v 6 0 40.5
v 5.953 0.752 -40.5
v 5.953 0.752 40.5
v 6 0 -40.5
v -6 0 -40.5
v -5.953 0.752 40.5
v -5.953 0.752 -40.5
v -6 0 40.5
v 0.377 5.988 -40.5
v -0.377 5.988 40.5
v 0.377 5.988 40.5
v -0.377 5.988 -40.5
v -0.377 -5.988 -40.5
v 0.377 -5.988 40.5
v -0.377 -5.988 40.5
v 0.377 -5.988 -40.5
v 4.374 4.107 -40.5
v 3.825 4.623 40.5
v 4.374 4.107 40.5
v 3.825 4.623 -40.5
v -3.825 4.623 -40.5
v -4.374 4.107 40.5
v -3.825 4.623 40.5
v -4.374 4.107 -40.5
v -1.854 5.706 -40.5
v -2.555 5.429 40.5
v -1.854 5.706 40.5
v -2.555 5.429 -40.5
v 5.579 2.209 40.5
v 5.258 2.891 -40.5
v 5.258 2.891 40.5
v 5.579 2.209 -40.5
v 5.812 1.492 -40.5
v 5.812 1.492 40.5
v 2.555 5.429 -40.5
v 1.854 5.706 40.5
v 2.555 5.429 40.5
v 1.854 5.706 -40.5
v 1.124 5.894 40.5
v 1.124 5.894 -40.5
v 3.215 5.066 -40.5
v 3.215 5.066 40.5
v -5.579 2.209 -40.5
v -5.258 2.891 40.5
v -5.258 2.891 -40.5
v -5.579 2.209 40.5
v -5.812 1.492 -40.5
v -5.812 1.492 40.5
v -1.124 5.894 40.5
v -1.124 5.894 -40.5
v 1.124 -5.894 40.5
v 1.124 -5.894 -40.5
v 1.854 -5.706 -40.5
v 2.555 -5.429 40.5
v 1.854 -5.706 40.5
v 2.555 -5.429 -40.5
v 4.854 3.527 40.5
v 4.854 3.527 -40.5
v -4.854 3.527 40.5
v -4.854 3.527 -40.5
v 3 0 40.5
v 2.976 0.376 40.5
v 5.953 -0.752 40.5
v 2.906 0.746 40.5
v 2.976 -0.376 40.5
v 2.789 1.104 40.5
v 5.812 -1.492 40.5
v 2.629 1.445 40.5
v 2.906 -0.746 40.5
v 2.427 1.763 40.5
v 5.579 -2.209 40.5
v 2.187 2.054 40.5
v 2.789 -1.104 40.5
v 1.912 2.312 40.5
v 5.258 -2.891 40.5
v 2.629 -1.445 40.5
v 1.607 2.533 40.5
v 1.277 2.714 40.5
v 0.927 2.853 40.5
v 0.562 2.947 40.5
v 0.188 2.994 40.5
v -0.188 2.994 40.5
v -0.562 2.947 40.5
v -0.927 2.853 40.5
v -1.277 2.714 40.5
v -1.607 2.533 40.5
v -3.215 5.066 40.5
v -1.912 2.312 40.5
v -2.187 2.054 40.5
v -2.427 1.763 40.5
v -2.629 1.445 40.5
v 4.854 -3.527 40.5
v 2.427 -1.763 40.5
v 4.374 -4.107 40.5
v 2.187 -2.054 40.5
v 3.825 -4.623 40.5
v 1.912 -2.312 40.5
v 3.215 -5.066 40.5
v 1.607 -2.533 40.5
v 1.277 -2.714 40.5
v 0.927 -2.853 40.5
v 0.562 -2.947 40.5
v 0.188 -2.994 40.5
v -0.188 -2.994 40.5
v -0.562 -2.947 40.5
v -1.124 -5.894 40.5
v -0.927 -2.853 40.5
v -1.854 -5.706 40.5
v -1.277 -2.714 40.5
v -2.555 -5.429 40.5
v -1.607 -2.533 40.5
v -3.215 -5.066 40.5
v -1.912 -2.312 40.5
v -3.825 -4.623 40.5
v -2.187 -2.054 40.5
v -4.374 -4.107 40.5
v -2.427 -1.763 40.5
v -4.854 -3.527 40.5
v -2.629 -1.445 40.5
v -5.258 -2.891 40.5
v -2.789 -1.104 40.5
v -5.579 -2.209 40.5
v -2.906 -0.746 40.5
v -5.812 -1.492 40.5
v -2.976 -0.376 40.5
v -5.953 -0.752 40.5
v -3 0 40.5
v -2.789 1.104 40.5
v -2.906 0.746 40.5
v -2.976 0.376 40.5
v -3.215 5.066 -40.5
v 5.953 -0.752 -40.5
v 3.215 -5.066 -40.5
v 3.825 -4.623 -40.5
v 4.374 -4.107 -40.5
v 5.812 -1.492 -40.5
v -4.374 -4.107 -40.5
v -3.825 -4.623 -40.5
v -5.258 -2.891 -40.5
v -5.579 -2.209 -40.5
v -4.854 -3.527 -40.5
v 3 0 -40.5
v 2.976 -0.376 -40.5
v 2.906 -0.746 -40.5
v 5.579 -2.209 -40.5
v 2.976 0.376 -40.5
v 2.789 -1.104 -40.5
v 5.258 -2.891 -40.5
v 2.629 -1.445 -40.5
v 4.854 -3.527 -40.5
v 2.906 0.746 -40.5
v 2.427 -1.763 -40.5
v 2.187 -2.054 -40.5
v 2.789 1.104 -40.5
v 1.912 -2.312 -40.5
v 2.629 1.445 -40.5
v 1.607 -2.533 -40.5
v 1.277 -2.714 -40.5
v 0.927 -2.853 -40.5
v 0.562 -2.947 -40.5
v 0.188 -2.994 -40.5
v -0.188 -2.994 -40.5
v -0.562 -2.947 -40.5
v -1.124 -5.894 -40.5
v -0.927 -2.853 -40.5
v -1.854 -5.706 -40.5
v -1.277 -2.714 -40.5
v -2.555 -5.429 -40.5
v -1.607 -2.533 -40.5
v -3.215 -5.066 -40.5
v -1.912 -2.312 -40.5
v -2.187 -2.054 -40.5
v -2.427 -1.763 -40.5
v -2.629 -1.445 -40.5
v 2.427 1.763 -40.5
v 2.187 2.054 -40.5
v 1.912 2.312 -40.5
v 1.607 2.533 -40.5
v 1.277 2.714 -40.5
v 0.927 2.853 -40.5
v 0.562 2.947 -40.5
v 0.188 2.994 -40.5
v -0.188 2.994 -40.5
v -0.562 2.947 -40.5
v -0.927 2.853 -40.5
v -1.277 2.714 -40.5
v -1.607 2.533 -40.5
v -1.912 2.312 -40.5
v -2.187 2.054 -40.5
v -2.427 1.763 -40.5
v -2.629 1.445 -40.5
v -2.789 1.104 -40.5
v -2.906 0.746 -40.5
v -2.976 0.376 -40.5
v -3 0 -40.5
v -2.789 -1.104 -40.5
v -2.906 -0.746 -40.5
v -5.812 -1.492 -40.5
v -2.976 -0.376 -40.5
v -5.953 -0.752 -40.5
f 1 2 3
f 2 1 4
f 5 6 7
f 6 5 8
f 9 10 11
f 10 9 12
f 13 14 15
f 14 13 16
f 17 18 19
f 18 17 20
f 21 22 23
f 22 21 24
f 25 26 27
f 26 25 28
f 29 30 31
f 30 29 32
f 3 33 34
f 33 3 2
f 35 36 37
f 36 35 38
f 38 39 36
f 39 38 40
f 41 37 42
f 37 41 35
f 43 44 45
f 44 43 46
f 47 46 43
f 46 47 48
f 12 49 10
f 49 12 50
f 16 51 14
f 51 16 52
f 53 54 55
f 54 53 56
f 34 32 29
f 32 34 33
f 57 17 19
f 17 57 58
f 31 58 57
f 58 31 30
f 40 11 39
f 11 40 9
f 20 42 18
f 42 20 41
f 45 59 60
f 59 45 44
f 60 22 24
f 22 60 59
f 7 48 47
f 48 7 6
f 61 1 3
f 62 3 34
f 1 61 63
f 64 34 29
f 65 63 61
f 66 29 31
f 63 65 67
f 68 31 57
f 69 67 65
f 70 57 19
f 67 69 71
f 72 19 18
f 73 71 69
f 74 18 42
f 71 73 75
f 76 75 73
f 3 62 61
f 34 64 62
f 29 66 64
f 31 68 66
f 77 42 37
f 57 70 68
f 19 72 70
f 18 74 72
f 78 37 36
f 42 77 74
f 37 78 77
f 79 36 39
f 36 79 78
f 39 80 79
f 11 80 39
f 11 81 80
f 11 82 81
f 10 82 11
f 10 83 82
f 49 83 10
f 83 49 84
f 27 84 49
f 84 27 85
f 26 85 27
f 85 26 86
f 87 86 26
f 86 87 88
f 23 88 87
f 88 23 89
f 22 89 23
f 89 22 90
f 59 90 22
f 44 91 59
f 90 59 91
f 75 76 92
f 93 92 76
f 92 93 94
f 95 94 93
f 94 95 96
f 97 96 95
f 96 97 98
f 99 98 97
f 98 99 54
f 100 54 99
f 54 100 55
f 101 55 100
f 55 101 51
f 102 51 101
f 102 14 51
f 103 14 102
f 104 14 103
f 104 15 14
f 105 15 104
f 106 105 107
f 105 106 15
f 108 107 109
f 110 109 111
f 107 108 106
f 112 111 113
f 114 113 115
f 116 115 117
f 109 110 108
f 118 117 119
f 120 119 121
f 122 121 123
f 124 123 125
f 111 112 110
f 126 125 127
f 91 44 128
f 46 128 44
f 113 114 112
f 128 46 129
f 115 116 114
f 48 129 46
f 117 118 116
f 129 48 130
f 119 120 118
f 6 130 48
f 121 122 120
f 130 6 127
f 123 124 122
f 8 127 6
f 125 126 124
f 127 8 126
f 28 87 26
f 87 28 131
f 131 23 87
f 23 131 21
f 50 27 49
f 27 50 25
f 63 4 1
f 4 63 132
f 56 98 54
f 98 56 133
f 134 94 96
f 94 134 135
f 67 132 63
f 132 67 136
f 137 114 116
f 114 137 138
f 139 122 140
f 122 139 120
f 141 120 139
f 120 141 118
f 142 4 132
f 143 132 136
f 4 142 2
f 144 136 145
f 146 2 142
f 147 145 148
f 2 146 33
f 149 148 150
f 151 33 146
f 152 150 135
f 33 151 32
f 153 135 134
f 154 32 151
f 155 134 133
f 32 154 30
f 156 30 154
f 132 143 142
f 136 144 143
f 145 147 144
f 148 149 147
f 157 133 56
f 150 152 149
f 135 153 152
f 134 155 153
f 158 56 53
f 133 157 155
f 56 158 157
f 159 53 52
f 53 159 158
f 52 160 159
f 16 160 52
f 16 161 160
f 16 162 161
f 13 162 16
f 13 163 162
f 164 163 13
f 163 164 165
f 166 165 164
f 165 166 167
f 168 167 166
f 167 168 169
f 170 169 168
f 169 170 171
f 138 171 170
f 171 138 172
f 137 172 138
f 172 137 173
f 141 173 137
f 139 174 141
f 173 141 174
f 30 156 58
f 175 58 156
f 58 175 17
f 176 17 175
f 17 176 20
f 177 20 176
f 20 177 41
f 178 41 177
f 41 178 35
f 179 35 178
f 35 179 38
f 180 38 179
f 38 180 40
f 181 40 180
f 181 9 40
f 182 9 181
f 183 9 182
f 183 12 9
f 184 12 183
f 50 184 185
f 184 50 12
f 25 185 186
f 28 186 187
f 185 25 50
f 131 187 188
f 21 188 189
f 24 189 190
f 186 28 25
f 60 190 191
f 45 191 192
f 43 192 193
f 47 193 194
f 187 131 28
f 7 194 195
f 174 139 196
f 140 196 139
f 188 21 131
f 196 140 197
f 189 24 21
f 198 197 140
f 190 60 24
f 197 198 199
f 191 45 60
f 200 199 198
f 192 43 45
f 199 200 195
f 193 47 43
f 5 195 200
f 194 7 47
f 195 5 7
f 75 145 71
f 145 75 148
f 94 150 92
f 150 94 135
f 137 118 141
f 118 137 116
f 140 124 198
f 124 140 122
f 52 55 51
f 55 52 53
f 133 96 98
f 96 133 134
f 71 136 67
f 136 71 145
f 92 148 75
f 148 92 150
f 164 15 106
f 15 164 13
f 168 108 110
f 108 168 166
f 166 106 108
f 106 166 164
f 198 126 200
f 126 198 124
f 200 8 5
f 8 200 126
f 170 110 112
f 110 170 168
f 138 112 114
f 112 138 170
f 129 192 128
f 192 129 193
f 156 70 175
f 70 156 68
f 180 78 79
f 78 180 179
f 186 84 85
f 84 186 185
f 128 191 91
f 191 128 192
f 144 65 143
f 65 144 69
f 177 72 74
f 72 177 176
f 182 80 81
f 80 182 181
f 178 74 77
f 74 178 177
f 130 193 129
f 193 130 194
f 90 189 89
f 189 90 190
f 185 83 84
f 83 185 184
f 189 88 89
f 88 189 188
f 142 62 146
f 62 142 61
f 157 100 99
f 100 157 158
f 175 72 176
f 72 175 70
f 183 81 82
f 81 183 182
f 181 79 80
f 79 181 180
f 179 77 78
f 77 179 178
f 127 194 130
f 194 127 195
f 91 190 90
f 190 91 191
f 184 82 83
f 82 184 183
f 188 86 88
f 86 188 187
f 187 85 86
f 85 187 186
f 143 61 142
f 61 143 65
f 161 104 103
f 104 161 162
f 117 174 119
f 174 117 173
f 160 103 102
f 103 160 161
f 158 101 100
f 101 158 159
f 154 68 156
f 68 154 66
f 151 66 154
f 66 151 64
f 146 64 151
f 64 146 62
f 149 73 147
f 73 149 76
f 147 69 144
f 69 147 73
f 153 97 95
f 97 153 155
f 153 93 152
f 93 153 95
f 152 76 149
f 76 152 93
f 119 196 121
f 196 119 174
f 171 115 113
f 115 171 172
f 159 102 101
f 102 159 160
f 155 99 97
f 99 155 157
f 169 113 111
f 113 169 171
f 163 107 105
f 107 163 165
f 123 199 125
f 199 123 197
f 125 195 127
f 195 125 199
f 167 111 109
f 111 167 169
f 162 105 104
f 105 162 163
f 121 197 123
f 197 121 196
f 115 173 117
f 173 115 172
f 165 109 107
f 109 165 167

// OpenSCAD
$fn = 50;


difference() {
	union() {
		translate(v = [0, 0, -40.5000000000]) {
			cylinder(h = 81, r = 6.0000000000);
		}
	}
	union() {
		translate(v = [0, 0, -100.0000000000]) {
			cylinder(h = 200, r = 3);
		}
	}
}
